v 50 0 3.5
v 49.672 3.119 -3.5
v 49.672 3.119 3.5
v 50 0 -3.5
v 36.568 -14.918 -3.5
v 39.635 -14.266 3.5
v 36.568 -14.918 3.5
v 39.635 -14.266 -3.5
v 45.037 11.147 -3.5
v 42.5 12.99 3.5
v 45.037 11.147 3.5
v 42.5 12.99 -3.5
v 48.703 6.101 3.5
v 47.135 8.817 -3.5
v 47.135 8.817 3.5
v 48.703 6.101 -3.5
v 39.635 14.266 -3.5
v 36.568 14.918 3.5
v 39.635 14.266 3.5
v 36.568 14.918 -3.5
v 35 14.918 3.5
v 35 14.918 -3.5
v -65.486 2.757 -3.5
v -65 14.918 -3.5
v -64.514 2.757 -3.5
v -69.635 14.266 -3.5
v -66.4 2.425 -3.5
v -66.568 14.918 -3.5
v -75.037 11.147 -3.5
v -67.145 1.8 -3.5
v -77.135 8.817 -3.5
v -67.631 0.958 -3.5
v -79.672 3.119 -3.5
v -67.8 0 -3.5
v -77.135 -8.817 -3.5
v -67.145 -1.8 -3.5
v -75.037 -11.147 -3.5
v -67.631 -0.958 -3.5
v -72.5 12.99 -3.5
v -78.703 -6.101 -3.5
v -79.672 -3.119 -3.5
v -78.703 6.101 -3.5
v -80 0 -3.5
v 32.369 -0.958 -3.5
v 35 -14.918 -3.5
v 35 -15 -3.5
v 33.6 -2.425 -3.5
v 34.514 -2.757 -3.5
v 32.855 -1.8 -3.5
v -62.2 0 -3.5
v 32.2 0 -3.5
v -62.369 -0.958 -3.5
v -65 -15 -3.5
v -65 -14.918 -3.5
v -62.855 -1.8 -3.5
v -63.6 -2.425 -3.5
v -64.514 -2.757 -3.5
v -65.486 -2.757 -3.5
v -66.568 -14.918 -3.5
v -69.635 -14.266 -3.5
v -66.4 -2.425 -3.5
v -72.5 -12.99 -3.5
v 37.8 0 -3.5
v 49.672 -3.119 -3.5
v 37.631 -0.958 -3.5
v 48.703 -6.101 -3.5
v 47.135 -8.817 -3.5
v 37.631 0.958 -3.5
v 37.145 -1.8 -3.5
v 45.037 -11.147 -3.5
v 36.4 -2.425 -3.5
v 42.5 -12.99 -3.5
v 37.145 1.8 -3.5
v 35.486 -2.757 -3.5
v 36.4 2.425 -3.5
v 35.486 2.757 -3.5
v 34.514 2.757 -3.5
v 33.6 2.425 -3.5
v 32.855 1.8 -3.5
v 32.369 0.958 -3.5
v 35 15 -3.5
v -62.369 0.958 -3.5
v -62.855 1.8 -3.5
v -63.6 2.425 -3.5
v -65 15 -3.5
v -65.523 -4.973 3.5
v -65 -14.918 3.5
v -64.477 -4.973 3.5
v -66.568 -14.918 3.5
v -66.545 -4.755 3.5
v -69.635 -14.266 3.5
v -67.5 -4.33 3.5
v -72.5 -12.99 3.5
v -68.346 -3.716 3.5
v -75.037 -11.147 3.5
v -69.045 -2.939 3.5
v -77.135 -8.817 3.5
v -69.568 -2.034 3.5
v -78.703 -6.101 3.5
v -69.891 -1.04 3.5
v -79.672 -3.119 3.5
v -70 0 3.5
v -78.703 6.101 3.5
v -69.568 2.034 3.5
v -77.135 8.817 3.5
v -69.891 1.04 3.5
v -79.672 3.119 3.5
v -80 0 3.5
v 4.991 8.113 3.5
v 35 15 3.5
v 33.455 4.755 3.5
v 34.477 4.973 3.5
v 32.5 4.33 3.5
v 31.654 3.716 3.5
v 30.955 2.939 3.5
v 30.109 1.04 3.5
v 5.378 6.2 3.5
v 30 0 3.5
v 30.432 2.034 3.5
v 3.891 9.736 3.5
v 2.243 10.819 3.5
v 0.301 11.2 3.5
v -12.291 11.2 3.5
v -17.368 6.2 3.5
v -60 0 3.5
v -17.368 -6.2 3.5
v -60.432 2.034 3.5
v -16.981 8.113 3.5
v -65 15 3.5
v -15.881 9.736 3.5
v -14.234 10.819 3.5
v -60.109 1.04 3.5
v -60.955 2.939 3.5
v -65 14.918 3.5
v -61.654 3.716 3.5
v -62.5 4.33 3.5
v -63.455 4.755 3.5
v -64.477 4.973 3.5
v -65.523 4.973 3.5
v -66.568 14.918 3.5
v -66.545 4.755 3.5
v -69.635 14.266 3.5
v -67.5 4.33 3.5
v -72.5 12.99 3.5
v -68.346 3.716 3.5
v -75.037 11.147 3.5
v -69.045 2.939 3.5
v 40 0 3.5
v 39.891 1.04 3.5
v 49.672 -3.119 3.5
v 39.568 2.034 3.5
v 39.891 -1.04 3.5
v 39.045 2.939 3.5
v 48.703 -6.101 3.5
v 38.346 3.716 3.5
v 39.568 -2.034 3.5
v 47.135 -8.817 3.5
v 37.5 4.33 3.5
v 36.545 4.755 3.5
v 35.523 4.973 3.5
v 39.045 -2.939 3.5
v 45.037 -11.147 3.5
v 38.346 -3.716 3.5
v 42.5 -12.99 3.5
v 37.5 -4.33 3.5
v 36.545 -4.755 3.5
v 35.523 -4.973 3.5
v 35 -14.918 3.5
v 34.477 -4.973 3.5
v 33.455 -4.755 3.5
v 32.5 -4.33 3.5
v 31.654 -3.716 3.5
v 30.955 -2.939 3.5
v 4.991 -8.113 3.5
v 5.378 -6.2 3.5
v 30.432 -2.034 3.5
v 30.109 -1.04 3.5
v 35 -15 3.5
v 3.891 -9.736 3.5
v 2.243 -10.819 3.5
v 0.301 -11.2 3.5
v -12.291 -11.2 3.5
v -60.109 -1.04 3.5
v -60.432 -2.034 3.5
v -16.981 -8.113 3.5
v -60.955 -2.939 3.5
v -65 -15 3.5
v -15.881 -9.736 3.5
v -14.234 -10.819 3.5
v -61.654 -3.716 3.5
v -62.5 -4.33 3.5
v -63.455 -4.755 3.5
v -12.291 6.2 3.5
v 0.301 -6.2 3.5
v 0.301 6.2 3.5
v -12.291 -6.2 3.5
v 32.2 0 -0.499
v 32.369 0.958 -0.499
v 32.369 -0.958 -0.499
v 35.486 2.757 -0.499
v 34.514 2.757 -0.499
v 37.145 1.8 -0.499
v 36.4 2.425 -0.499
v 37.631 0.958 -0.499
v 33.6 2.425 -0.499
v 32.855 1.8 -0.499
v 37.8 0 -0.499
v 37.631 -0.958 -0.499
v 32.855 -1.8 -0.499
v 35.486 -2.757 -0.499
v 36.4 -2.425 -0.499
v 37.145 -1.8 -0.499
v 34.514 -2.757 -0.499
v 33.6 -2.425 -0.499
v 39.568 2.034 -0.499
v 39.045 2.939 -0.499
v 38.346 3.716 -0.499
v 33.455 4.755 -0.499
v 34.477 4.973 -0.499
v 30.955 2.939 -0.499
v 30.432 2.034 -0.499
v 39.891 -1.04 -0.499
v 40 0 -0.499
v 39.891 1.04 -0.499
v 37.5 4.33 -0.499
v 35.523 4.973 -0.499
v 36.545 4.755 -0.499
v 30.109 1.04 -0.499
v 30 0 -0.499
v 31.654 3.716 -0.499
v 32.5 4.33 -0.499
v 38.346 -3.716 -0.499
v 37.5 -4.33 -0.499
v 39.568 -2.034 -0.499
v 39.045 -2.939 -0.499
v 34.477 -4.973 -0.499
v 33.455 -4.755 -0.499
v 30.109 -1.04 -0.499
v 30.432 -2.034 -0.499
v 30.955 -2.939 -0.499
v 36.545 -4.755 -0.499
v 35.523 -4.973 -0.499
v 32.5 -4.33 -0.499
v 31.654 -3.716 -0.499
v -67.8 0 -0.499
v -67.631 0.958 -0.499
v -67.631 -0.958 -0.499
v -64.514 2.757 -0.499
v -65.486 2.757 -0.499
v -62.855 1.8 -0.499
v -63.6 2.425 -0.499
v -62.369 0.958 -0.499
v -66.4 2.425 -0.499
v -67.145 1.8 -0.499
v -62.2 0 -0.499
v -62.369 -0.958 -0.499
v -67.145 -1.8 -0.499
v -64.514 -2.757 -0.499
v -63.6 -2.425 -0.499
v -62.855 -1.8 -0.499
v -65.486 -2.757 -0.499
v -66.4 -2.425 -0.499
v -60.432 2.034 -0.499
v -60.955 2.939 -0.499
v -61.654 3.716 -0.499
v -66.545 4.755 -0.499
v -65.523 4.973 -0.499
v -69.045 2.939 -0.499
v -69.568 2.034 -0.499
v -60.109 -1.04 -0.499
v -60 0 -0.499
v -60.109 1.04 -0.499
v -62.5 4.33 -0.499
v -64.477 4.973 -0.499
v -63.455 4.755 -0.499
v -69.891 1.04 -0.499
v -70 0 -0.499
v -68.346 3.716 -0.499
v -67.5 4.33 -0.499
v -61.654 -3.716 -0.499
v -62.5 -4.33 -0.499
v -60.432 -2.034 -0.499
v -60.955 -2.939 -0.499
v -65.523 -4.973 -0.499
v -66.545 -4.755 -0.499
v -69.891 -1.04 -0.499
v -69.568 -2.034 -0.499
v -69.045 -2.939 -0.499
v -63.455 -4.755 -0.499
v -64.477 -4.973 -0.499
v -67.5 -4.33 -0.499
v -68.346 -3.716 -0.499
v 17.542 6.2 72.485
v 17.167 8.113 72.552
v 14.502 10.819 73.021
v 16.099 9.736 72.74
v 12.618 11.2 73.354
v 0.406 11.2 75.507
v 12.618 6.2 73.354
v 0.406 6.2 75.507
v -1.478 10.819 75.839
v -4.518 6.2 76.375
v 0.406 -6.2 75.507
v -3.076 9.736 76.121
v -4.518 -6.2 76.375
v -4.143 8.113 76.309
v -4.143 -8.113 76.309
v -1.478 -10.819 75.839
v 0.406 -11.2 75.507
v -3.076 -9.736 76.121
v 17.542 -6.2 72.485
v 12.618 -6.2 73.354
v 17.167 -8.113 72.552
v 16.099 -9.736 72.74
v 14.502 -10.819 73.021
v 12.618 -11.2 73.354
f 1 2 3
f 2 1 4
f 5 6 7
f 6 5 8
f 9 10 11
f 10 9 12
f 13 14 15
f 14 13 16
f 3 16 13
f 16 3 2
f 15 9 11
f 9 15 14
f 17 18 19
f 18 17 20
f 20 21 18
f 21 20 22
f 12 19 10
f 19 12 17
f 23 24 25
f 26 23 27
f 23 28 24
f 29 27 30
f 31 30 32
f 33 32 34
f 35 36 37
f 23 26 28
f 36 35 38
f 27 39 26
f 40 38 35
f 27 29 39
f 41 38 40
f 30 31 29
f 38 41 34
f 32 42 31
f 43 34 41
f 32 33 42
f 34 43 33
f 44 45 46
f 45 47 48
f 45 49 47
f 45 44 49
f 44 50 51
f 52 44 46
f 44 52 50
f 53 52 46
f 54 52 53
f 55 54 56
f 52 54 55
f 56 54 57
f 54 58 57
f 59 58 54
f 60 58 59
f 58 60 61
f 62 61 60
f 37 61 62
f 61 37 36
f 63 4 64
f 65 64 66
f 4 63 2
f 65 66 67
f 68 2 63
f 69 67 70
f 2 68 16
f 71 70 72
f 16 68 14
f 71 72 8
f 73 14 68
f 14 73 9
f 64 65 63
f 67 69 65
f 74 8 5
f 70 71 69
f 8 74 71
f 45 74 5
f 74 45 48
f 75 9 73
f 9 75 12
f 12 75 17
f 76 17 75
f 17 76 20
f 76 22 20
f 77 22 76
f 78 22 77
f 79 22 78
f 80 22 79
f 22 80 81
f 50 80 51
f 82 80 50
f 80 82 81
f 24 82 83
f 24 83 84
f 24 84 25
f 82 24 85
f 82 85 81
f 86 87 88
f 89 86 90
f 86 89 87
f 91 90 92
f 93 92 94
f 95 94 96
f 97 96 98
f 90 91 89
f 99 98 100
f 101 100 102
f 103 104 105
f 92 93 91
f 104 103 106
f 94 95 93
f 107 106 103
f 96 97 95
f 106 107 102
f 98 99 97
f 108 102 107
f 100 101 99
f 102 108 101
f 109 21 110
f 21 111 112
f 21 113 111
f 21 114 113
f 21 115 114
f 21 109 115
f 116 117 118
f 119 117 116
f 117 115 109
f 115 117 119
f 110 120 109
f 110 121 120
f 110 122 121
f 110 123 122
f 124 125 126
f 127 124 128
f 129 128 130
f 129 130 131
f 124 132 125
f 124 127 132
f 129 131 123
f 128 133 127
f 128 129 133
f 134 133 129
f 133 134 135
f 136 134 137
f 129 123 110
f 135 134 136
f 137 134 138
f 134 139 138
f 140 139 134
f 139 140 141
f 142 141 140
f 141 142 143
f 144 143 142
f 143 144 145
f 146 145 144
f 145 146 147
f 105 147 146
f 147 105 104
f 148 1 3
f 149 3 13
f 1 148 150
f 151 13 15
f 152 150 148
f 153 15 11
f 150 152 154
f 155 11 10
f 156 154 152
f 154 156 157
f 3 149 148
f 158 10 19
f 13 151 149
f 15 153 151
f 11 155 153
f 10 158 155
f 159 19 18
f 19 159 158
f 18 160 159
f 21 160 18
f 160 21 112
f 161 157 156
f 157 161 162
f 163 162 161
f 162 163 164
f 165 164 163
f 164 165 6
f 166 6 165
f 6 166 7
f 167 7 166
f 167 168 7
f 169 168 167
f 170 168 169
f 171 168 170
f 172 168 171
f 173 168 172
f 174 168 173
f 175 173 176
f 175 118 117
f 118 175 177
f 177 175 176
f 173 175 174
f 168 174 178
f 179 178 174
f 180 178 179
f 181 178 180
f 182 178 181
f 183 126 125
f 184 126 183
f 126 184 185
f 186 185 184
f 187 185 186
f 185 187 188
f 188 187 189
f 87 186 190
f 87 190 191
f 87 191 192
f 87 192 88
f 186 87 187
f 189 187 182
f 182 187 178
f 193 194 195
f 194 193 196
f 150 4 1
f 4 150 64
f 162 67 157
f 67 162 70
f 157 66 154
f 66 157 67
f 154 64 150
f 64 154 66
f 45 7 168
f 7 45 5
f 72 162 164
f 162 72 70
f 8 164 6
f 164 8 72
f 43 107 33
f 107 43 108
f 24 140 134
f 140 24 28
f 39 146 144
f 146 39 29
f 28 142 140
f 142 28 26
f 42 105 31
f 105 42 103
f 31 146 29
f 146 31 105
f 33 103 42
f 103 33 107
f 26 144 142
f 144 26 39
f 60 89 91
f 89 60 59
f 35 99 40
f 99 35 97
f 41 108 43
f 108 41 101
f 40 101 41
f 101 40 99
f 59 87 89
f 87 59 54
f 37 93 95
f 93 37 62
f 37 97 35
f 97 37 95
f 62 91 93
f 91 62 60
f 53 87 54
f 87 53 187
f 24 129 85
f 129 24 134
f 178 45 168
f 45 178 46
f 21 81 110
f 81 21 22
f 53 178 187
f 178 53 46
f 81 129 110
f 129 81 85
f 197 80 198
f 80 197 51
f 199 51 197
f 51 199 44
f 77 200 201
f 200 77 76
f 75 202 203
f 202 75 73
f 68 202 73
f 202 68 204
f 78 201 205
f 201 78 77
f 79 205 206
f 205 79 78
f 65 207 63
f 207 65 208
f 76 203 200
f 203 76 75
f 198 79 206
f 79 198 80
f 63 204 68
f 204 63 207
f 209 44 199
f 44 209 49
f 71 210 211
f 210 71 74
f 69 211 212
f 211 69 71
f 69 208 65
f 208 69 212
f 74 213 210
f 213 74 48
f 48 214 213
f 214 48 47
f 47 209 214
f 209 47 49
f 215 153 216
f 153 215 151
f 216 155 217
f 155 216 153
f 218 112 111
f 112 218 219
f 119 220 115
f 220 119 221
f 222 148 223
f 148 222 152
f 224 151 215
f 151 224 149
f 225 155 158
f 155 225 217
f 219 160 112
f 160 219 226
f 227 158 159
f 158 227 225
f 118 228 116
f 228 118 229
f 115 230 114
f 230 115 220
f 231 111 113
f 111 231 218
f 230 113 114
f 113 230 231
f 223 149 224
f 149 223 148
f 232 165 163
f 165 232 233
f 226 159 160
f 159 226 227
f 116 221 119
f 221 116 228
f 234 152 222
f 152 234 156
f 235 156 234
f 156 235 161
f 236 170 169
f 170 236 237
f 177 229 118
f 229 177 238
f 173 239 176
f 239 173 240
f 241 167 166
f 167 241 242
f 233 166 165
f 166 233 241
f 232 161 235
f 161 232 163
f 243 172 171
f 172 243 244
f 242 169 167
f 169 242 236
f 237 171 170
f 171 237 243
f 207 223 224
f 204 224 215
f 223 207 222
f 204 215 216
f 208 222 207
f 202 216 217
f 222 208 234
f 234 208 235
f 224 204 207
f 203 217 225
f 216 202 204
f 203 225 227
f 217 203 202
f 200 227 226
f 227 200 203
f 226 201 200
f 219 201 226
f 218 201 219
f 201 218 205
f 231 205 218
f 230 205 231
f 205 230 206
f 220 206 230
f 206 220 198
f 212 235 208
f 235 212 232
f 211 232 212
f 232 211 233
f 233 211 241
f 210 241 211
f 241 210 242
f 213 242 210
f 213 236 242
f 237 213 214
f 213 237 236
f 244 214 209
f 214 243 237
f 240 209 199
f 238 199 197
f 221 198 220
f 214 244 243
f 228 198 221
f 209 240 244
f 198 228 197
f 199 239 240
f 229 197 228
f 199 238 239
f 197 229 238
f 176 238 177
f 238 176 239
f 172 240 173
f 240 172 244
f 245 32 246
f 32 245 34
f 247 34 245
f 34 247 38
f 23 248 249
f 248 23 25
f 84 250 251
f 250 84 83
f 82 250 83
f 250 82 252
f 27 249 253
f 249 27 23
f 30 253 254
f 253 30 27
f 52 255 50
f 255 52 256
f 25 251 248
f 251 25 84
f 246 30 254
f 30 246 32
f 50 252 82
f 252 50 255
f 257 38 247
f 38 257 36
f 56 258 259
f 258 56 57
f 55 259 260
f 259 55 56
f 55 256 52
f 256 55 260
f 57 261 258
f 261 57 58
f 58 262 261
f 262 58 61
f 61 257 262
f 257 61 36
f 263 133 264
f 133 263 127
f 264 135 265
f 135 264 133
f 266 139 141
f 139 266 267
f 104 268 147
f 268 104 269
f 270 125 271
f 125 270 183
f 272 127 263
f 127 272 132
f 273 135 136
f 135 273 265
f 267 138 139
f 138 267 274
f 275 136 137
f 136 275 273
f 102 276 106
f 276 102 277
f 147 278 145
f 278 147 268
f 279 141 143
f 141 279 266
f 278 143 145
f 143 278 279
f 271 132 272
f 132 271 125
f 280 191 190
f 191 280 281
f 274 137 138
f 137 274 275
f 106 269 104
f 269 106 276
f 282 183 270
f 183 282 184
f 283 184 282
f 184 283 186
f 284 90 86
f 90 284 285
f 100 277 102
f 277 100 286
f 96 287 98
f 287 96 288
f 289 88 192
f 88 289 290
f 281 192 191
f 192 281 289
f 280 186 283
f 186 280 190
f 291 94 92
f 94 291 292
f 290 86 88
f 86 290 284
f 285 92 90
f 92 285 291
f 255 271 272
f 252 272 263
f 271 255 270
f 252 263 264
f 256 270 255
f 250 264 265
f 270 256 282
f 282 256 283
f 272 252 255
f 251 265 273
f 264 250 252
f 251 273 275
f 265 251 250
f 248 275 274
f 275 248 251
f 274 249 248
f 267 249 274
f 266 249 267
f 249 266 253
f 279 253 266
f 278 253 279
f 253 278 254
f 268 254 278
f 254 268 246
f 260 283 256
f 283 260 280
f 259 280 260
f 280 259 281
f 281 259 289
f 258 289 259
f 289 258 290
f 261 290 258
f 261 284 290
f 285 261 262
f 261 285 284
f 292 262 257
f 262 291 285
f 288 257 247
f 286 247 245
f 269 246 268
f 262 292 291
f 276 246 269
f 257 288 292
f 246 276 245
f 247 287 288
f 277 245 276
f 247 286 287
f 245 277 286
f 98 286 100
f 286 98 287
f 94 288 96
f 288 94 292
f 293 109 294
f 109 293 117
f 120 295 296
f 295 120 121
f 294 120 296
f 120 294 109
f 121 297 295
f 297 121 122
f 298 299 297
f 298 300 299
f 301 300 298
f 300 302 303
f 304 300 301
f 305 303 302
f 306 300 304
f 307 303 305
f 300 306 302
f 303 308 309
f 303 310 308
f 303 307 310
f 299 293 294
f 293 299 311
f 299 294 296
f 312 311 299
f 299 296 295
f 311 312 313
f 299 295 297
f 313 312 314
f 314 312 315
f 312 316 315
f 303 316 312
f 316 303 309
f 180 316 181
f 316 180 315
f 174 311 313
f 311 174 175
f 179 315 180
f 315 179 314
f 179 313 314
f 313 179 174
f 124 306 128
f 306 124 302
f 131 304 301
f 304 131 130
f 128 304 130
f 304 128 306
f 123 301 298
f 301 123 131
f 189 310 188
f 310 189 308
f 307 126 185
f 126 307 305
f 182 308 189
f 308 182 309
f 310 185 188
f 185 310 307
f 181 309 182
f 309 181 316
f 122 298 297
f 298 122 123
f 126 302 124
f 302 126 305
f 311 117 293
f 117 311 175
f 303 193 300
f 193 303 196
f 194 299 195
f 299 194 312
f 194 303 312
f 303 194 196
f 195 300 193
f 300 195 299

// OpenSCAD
woodWidth=12.3 + 0.1;
thickness=5;
woodSupport=75;
wallSupport=80;

mobile_hanger();

module mobile_hanger() {
    // Wood support
    translate([0,0,woodSupport/2]) rotate([0,10,0])
        difference() {
            rounded_rect(x=woodWidth+2*thickness,y=woodWidth+2*thickness,z=woodSupport, r=5);
            cube(size = [woodWidth,woodWidth,woodSupport+0.001], center=true );
        }

    // Wall support
    difference() {
        translate([-15,0,0])
            rounded_rect(x=wallSupport + 50,y=30,z=7,r=15);
        translate([35,0,4.5])
            screw_hole();
        translate([15-wallSupport,0,4.5])
            screw_hole();
    }
}    
    
// Rounded rectangle, centered
module rounded_rect(x,y,z,r) {
    union() {
        cube(size=[x-r*2,y,z], center=true);
        cube(size=[x,y-r*2,z], center=true);
        for(dX = [x/2-r, -x/2+r])
            for(dY = [y/2-r, -y/2+r])
                translate([dX,dY,0])
                    cylinder(h=z, r=r, center=true);
    }
}


// Screw cutout, centered at the screw opening
module screw_hole() {
    r1=2.8;
    r2=5;
    d1=30;
    d2=5;
    union() {
        translate([0,0,-d1/2])
        cylinder(h=d1, r=r1, center=true, $fs=1);
        translate([0,0,-d2/2+0.001])
            cylinder(h=d2, r=r2, center=true, $fs=1);
    }
}    
        
